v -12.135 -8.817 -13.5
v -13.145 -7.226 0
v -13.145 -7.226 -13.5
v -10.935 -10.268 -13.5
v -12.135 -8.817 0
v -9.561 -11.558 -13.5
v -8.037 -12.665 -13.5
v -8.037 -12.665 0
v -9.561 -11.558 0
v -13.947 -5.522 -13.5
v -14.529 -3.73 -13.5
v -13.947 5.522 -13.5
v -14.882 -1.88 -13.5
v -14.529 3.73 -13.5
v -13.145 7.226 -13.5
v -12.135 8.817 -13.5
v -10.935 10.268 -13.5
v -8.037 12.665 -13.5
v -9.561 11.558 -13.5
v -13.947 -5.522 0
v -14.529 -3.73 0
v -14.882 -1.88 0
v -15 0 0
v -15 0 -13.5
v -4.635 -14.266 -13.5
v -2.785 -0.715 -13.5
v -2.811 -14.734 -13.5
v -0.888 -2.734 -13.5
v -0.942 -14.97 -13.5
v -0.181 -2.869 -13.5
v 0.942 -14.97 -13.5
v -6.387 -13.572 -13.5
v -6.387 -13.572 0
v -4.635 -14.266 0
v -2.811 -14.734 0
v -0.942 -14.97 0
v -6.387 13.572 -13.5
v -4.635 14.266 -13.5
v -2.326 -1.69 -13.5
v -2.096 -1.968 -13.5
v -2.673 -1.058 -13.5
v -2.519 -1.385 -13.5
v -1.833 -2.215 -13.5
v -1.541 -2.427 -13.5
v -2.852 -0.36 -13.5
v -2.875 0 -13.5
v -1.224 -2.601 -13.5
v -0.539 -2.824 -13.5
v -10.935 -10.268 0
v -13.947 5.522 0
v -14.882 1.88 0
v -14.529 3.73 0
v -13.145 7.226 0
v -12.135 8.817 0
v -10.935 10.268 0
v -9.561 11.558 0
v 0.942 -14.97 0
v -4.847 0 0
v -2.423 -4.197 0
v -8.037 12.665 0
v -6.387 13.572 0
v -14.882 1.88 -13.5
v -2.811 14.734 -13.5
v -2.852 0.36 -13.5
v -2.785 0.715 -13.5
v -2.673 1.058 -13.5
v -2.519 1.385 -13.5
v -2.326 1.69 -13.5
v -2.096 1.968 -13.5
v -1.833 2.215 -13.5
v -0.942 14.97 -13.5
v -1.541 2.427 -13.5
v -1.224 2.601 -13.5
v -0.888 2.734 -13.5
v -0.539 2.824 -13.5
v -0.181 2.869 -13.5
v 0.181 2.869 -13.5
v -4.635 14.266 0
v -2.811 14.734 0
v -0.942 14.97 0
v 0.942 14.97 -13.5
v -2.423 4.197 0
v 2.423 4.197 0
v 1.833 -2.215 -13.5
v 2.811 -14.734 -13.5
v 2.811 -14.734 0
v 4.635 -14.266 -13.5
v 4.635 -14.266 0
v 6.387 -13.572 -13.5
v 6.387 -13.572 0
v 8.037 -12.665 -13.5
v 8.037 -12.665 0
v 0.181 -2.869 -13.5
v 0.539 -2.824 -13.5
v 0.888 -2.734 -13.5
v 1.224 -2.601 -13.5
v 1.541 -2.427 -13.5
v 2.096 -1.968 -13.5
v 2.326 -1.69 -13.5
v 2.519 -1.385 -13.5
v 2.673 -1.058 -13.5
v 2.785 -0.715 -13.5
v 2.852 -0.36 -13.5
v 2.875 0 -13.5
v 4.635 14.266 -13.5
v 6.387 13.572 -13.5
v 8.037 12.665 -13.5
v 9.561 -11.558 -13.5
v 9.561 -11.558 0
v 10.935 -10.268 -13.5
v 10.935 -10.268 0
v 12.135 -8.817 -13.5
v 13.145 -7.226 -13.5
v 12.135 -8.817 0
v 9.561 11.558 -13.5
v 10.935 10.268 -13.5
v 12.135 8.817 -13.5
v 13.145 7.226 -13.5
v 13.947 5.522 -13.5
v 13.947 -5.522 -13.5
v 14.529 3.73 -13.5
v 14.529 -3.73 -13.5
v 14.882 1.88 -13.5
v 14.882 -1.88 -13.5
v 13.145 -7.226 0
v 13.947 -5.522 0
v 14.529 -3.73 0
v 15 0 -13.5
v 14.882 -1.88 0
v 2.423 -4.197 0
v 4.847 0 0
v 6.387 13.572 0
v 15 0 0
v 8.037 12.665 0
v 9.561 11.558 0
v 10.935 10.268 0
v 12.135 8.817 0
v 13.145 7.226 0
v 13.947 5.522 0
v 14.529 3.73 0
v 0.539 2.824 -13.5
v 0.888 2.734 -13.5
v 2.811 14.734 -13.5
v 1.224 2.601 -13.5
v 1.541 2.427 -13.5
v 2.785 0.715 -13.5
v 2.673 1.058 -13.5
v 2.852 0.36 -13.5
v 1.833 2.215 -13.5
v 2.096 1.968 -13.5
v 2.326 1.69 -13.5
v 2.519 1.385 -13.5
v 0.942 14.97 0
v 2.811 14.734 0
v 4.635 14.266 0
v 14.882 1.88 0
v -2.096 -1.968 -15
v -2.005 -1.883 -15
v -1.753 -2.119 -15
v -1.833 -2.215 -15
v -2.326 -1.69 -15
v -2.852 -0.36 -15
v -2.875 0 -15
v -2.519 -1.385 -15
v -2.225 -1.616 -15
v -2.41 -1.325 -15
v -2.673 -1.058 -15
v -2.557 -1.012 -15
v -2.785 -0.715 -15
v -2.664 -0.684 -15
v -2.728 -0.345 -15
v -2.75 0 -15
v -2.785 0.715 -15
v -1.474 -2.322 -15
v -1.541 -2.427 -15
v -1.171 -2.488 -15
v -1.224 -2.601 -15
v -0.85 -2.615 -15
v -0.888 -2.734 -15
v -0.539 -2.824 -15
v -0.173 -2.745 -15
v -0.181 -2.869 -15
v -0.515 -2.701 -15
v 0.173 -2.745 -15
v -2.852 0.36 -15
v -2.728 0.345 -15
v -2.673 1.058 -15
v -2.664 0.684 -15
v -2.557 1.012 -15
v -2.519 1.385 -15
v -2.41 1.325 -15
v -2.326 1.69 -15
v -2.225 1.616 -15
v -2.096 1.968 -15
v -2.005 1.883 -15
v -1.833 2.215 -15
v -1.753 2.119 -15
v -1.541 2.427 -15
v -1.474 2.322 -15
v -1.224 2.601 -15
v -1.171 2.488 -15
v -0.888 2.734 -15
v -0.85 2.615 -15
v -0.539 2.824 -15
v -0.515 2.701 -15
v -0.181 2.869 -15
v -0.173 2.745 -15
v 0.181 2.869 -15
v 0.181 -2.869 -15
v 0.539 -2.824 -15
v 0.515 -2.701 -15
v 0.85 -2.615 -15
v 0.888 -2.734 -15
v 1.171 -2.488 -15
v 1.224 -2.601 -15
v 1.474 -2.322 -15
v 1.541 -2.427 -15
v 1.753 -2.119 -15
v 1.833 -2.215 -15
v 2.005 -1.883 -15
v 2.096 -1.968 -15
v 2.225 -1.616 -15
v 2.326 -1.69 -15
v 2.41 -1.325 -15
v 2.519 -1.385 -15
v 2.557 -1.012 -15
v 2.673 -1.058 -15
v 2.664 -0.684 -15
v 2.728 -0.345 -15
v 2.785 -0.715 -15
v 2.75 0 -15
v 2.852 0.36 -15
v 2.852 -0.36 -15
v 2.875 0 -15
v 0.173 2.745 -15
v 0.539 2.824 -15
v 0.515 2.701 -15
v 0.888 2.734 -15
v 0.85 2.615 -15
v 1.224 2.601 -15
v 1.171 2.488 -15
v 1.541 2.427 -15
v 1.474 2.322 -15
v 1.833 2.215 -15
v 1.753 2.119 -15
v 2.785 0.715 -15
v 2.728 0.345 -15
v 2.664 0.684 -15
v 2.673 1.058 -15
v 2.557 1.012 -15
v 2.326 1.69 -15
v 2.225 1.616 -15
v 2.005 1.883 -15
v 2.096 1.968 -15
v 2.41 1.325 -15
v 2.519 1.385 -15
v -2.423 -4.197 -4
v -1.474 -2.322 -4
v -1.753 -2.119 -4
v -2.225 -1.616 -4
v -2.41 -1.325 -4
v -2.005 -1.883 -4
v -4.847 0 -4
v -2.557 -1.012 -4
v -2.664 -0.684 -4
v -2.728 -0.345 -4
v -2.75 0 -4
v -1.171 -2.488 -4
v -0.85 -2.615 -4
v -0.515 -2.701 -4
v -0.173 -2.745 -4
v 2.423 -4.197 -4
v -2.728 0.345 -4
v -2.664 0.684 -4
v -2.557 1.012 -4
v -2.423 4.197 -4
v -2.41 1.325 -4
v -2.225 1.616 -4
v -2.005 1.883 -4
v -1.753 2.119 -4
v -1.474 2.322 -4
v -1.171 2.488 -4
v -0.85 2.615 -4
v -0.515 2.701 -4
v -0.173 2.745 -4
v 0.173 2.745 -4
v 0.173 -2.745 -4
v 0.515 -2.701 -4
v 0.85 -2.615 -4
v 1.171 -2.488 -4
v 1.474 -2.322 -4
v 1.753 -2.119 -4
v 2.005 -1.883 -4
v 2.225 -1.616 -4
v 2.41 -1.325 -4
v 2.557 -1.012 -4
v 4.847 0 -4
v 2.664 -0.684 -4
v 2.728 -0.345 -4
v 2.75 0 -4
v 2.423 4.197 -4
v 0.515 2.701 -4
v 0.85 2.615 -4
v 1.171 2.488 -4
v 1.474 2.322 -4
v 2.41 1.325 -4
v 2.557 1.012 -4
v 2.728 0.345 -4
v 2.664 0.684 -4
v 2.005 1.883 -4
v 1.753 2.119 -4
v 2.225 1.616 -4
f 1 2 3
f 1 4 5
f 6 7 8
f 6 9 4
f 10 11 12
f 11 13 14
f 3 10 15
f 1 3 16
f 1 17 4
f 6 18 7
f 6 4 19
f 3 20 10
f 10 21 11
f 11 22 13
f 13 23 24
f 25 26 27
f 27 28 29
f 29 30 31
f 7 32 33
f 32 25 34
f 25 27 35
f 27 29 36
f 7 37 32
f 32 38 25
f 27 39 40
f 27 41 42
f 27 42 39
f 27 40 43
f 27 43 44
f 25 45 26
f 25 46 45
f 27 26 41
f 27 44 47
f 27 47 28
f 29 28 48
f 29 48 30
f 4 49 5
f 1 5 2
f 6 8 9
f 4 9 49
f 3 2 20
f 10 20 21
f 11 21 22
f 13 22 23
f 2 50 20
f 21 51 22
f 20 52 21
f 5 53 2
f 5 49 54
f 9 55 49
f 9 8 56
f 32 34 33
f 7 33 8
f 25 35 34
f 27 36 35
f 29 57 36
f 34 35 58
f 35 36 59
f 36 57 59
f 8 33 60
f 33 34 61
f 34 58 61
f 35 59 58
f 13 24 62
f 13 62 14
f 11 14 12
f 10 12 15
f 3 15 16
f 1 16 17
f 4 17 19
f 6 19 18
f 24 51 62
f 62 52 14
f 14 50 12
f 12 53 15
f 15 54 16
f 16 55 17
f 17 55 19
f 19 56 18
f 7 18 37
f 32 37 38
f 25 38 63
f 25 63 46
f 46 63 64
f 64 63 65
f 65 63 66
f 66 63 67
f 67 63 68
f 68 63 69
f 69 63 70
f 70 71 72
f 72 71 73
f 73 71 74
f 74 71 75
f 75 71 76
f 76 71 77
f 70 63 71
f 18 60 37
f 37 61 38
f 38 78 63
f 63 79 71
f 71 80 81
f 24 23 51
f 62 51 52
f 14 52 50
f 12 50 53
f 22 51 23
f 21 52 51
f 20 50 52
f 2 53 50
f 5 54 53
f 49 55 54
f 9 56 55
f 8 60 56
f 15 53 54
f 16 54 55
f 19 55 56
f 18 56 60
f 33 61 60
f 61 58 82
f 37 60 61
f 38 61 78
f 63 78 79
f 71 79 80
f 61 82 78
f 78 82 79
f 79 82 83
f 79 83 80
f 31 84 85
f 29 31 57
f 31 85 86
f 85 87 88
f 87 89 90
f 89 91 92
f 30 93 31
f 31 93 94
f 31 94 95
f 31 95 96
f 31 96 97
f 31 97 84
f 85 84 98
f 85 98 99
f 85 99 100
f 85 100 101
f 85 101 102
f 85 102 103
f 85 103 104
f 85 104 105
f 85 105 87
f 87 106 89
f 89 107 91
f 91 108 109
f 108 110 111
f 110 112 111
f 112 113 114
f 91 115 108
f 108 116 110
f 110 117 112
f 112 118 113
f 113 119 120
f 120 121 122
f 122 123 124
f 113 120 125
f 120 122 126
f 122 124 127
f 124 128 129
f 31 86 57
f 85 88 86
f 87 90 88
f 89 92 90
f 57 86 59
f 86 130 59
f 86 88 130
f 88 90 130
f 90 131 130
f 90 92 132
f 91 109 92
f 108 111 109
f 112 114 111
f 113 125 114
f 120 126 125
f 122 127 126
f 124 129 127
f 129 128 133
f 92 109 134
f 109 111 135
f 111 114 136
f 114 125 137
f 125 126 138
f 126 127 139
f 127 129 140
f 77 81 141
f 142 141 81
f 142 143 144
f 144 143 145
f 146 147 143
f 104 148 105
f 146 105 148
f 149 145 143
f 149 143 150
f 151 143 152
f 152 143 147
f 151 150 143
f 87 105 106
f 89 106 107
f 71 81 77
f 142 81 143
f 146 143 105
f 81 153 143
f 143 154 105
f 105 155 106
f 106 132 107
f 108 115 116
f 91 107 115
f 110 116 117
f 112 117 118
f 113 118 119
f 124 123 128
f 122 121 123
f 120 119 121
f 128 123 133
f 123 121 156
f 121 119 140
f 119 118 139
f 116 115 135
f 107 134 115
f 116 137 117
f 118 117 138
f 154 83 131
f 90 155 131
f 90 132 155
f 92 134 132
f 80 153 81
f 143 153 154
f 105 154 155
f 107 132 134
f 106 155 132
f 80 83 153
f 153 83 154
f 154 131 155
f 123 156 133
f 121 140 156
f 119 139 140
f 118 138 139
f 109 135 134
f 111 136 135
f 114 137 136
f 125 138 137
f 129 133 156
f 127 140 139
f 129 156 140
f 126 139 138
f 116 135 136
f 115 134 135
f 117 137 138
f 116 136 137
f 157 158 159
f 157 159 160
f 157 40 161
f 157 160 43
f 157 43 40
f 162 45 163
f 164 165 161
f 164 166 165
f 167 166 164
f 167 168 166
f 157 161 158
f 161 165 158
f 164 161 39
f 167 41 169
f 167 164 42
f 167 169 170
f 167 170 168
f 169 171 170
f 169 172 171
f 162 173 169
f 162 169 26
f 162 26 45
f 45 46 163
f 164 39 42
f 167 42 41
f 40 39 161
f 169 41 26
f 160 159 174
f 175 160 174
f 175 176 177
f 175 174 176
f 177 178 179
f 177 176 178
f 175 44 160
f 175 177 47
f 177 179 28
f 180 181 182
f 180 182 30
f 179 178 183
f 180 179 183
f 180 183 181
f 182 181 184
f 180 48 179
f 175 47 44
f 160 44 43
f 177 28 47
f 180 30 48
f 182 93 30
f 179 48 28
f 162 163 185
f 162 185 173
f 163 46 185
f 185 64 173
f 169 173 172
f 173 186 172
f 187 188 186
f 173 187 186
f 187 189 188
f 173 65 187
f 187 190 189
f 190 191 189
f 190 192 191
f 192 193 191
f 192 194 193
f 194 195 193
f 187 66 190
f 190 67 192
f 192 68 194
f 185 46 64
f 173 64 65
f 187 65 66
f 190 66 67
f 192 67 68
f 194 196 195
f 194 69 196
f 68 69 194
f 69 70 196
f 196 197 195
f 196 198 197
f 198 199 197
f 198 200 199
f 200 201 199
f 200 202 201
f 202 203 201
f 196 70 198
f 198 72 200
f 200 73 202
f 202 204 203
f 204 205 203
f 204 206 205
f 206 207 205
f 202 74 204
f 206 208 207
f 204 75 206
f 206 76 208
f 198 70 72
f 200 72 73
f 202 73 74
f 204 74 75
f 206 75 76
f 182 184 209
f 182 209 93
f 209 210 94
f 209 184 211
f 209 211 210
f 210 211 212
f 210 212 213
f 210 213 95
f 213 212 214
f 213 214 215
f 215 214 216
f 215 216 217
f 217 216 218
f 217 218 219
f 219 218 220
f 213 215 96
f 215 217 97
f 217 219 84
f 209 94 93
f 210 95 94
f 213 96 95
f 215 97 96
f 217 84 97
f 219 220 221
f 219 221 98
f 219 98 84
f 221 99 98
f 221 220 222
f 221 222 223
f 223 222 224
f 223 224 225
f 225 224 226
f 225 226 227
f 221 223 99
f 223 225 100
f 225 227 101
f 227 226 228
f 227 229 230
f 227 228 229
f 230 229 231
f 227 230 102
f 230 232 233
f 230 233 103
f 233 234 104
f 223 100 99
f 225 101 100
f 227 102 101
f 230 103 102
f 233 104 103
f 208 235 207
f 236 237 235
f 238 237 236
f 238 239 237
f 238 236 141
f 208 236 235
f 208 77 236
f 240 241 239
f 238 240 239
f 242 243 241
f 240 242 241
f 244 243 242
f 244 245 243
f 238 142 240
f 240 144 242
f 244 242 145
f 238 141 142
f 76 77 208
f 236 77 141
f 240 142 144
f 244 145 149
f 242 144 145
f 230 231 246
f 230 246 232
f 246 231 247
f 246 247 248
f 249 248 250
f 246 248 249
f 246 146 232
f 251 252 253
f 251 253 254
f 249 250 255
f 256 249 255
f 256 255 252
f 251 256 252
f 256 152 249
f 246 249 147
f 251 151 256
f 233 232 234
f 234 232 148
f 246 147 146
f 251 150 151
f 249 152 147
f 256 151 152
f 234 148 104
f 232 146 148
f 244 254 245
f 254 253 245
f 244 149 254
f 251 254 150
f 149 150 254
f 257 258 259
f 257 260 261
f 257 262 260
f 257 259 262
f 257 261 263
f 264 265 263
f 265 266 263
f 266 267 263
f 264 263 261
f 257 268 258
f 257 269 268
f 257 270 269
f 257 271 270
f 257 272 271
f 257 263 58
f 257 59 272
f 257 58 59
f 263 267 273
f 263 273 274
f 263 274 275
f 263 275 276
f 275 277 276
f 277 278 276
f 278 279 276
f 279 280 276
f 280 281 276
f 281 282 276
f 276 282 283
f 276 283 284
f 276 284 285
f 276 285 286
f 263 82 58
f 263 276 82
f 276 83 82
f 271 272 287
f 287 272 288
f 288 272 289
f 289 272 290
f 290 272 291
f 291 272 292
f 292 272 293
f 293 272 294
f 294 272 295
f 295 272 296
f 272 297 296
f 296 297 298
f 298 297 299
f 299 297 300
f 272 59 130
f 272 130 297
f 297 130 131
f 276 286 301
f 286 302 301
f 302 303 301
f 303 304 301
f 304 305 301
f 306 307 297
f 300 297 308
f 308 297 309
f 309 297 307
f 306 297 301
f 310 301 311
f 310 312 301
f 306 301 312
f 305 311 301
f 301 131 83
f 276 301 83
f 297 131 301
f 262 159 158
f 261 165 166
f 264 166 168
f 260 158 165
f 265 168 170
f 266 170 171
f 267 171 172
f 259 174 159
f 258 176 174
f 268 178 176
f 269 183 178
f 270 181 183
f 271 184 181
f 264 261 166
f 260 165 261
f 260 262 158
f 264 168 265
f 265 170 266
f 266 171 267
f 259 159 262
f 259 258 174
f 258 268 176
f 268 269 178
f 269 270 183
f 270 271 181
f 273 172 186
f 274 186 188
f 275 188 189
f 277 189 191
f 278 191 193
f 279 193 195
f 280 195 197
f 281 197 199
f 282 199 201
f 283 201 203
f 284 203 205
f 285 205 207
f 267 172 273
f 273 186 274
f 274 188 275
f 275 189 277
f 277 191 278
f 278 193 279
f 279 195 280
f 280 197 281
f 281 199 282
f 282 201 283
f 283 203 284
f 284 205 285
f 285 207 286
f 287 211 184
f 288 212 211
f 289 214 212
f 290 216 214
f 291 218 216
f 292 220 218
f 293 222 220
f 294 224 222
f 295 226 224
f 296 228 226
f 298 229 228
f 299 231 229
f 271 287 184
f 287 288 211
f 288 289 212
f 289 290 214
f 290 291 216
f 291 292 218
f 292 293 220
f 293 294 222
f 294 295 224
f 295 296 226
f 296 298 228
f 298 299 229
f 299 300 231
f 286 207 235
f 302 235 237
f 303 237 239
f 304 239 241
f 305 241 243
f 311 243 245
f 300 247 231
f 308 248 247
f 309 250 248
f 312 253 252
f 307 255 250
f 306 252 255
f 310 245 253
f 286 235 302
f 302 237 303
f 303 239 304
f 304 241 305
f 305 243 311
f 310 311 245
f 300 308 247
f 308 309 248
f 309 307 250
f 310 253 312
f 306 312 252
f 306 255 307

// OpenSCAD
$fn = 50;

difference() {
	union() {
		translate(v = [0, 0, -13.5]) {
			cylinder(h = 13.5, r = 15.0);
		}
		#translate(v = [0, 0, -15.0]) {
			cylinder(h = 15, r = 2.875);
		}
	}
	union() {
		translate(v = [0, 0, 0]) {
			rotate(a = [0, 0, 0]) {
				difference() {
					union() {
						translate(v = [0, 0, -4]) {
							linear_extrude(height = 4) {
								polygon(points = [[4.8468, 0.0], [2.4234000000000004, 4.197451927062417], [-2.423399999999999, 4.197451927062417], [-4.8468, 5.935618106107392e-16], [-2.423400000000002, -4.197451927062416], [2.423399999999997, -4.197451927062419]]);
							}
						}
					}
					union();
				}
			}
		}
		#translate(v = [0, 0, -100.0]) {
			cylinder(h = 200, r = 2.75);
		}
	}
}
